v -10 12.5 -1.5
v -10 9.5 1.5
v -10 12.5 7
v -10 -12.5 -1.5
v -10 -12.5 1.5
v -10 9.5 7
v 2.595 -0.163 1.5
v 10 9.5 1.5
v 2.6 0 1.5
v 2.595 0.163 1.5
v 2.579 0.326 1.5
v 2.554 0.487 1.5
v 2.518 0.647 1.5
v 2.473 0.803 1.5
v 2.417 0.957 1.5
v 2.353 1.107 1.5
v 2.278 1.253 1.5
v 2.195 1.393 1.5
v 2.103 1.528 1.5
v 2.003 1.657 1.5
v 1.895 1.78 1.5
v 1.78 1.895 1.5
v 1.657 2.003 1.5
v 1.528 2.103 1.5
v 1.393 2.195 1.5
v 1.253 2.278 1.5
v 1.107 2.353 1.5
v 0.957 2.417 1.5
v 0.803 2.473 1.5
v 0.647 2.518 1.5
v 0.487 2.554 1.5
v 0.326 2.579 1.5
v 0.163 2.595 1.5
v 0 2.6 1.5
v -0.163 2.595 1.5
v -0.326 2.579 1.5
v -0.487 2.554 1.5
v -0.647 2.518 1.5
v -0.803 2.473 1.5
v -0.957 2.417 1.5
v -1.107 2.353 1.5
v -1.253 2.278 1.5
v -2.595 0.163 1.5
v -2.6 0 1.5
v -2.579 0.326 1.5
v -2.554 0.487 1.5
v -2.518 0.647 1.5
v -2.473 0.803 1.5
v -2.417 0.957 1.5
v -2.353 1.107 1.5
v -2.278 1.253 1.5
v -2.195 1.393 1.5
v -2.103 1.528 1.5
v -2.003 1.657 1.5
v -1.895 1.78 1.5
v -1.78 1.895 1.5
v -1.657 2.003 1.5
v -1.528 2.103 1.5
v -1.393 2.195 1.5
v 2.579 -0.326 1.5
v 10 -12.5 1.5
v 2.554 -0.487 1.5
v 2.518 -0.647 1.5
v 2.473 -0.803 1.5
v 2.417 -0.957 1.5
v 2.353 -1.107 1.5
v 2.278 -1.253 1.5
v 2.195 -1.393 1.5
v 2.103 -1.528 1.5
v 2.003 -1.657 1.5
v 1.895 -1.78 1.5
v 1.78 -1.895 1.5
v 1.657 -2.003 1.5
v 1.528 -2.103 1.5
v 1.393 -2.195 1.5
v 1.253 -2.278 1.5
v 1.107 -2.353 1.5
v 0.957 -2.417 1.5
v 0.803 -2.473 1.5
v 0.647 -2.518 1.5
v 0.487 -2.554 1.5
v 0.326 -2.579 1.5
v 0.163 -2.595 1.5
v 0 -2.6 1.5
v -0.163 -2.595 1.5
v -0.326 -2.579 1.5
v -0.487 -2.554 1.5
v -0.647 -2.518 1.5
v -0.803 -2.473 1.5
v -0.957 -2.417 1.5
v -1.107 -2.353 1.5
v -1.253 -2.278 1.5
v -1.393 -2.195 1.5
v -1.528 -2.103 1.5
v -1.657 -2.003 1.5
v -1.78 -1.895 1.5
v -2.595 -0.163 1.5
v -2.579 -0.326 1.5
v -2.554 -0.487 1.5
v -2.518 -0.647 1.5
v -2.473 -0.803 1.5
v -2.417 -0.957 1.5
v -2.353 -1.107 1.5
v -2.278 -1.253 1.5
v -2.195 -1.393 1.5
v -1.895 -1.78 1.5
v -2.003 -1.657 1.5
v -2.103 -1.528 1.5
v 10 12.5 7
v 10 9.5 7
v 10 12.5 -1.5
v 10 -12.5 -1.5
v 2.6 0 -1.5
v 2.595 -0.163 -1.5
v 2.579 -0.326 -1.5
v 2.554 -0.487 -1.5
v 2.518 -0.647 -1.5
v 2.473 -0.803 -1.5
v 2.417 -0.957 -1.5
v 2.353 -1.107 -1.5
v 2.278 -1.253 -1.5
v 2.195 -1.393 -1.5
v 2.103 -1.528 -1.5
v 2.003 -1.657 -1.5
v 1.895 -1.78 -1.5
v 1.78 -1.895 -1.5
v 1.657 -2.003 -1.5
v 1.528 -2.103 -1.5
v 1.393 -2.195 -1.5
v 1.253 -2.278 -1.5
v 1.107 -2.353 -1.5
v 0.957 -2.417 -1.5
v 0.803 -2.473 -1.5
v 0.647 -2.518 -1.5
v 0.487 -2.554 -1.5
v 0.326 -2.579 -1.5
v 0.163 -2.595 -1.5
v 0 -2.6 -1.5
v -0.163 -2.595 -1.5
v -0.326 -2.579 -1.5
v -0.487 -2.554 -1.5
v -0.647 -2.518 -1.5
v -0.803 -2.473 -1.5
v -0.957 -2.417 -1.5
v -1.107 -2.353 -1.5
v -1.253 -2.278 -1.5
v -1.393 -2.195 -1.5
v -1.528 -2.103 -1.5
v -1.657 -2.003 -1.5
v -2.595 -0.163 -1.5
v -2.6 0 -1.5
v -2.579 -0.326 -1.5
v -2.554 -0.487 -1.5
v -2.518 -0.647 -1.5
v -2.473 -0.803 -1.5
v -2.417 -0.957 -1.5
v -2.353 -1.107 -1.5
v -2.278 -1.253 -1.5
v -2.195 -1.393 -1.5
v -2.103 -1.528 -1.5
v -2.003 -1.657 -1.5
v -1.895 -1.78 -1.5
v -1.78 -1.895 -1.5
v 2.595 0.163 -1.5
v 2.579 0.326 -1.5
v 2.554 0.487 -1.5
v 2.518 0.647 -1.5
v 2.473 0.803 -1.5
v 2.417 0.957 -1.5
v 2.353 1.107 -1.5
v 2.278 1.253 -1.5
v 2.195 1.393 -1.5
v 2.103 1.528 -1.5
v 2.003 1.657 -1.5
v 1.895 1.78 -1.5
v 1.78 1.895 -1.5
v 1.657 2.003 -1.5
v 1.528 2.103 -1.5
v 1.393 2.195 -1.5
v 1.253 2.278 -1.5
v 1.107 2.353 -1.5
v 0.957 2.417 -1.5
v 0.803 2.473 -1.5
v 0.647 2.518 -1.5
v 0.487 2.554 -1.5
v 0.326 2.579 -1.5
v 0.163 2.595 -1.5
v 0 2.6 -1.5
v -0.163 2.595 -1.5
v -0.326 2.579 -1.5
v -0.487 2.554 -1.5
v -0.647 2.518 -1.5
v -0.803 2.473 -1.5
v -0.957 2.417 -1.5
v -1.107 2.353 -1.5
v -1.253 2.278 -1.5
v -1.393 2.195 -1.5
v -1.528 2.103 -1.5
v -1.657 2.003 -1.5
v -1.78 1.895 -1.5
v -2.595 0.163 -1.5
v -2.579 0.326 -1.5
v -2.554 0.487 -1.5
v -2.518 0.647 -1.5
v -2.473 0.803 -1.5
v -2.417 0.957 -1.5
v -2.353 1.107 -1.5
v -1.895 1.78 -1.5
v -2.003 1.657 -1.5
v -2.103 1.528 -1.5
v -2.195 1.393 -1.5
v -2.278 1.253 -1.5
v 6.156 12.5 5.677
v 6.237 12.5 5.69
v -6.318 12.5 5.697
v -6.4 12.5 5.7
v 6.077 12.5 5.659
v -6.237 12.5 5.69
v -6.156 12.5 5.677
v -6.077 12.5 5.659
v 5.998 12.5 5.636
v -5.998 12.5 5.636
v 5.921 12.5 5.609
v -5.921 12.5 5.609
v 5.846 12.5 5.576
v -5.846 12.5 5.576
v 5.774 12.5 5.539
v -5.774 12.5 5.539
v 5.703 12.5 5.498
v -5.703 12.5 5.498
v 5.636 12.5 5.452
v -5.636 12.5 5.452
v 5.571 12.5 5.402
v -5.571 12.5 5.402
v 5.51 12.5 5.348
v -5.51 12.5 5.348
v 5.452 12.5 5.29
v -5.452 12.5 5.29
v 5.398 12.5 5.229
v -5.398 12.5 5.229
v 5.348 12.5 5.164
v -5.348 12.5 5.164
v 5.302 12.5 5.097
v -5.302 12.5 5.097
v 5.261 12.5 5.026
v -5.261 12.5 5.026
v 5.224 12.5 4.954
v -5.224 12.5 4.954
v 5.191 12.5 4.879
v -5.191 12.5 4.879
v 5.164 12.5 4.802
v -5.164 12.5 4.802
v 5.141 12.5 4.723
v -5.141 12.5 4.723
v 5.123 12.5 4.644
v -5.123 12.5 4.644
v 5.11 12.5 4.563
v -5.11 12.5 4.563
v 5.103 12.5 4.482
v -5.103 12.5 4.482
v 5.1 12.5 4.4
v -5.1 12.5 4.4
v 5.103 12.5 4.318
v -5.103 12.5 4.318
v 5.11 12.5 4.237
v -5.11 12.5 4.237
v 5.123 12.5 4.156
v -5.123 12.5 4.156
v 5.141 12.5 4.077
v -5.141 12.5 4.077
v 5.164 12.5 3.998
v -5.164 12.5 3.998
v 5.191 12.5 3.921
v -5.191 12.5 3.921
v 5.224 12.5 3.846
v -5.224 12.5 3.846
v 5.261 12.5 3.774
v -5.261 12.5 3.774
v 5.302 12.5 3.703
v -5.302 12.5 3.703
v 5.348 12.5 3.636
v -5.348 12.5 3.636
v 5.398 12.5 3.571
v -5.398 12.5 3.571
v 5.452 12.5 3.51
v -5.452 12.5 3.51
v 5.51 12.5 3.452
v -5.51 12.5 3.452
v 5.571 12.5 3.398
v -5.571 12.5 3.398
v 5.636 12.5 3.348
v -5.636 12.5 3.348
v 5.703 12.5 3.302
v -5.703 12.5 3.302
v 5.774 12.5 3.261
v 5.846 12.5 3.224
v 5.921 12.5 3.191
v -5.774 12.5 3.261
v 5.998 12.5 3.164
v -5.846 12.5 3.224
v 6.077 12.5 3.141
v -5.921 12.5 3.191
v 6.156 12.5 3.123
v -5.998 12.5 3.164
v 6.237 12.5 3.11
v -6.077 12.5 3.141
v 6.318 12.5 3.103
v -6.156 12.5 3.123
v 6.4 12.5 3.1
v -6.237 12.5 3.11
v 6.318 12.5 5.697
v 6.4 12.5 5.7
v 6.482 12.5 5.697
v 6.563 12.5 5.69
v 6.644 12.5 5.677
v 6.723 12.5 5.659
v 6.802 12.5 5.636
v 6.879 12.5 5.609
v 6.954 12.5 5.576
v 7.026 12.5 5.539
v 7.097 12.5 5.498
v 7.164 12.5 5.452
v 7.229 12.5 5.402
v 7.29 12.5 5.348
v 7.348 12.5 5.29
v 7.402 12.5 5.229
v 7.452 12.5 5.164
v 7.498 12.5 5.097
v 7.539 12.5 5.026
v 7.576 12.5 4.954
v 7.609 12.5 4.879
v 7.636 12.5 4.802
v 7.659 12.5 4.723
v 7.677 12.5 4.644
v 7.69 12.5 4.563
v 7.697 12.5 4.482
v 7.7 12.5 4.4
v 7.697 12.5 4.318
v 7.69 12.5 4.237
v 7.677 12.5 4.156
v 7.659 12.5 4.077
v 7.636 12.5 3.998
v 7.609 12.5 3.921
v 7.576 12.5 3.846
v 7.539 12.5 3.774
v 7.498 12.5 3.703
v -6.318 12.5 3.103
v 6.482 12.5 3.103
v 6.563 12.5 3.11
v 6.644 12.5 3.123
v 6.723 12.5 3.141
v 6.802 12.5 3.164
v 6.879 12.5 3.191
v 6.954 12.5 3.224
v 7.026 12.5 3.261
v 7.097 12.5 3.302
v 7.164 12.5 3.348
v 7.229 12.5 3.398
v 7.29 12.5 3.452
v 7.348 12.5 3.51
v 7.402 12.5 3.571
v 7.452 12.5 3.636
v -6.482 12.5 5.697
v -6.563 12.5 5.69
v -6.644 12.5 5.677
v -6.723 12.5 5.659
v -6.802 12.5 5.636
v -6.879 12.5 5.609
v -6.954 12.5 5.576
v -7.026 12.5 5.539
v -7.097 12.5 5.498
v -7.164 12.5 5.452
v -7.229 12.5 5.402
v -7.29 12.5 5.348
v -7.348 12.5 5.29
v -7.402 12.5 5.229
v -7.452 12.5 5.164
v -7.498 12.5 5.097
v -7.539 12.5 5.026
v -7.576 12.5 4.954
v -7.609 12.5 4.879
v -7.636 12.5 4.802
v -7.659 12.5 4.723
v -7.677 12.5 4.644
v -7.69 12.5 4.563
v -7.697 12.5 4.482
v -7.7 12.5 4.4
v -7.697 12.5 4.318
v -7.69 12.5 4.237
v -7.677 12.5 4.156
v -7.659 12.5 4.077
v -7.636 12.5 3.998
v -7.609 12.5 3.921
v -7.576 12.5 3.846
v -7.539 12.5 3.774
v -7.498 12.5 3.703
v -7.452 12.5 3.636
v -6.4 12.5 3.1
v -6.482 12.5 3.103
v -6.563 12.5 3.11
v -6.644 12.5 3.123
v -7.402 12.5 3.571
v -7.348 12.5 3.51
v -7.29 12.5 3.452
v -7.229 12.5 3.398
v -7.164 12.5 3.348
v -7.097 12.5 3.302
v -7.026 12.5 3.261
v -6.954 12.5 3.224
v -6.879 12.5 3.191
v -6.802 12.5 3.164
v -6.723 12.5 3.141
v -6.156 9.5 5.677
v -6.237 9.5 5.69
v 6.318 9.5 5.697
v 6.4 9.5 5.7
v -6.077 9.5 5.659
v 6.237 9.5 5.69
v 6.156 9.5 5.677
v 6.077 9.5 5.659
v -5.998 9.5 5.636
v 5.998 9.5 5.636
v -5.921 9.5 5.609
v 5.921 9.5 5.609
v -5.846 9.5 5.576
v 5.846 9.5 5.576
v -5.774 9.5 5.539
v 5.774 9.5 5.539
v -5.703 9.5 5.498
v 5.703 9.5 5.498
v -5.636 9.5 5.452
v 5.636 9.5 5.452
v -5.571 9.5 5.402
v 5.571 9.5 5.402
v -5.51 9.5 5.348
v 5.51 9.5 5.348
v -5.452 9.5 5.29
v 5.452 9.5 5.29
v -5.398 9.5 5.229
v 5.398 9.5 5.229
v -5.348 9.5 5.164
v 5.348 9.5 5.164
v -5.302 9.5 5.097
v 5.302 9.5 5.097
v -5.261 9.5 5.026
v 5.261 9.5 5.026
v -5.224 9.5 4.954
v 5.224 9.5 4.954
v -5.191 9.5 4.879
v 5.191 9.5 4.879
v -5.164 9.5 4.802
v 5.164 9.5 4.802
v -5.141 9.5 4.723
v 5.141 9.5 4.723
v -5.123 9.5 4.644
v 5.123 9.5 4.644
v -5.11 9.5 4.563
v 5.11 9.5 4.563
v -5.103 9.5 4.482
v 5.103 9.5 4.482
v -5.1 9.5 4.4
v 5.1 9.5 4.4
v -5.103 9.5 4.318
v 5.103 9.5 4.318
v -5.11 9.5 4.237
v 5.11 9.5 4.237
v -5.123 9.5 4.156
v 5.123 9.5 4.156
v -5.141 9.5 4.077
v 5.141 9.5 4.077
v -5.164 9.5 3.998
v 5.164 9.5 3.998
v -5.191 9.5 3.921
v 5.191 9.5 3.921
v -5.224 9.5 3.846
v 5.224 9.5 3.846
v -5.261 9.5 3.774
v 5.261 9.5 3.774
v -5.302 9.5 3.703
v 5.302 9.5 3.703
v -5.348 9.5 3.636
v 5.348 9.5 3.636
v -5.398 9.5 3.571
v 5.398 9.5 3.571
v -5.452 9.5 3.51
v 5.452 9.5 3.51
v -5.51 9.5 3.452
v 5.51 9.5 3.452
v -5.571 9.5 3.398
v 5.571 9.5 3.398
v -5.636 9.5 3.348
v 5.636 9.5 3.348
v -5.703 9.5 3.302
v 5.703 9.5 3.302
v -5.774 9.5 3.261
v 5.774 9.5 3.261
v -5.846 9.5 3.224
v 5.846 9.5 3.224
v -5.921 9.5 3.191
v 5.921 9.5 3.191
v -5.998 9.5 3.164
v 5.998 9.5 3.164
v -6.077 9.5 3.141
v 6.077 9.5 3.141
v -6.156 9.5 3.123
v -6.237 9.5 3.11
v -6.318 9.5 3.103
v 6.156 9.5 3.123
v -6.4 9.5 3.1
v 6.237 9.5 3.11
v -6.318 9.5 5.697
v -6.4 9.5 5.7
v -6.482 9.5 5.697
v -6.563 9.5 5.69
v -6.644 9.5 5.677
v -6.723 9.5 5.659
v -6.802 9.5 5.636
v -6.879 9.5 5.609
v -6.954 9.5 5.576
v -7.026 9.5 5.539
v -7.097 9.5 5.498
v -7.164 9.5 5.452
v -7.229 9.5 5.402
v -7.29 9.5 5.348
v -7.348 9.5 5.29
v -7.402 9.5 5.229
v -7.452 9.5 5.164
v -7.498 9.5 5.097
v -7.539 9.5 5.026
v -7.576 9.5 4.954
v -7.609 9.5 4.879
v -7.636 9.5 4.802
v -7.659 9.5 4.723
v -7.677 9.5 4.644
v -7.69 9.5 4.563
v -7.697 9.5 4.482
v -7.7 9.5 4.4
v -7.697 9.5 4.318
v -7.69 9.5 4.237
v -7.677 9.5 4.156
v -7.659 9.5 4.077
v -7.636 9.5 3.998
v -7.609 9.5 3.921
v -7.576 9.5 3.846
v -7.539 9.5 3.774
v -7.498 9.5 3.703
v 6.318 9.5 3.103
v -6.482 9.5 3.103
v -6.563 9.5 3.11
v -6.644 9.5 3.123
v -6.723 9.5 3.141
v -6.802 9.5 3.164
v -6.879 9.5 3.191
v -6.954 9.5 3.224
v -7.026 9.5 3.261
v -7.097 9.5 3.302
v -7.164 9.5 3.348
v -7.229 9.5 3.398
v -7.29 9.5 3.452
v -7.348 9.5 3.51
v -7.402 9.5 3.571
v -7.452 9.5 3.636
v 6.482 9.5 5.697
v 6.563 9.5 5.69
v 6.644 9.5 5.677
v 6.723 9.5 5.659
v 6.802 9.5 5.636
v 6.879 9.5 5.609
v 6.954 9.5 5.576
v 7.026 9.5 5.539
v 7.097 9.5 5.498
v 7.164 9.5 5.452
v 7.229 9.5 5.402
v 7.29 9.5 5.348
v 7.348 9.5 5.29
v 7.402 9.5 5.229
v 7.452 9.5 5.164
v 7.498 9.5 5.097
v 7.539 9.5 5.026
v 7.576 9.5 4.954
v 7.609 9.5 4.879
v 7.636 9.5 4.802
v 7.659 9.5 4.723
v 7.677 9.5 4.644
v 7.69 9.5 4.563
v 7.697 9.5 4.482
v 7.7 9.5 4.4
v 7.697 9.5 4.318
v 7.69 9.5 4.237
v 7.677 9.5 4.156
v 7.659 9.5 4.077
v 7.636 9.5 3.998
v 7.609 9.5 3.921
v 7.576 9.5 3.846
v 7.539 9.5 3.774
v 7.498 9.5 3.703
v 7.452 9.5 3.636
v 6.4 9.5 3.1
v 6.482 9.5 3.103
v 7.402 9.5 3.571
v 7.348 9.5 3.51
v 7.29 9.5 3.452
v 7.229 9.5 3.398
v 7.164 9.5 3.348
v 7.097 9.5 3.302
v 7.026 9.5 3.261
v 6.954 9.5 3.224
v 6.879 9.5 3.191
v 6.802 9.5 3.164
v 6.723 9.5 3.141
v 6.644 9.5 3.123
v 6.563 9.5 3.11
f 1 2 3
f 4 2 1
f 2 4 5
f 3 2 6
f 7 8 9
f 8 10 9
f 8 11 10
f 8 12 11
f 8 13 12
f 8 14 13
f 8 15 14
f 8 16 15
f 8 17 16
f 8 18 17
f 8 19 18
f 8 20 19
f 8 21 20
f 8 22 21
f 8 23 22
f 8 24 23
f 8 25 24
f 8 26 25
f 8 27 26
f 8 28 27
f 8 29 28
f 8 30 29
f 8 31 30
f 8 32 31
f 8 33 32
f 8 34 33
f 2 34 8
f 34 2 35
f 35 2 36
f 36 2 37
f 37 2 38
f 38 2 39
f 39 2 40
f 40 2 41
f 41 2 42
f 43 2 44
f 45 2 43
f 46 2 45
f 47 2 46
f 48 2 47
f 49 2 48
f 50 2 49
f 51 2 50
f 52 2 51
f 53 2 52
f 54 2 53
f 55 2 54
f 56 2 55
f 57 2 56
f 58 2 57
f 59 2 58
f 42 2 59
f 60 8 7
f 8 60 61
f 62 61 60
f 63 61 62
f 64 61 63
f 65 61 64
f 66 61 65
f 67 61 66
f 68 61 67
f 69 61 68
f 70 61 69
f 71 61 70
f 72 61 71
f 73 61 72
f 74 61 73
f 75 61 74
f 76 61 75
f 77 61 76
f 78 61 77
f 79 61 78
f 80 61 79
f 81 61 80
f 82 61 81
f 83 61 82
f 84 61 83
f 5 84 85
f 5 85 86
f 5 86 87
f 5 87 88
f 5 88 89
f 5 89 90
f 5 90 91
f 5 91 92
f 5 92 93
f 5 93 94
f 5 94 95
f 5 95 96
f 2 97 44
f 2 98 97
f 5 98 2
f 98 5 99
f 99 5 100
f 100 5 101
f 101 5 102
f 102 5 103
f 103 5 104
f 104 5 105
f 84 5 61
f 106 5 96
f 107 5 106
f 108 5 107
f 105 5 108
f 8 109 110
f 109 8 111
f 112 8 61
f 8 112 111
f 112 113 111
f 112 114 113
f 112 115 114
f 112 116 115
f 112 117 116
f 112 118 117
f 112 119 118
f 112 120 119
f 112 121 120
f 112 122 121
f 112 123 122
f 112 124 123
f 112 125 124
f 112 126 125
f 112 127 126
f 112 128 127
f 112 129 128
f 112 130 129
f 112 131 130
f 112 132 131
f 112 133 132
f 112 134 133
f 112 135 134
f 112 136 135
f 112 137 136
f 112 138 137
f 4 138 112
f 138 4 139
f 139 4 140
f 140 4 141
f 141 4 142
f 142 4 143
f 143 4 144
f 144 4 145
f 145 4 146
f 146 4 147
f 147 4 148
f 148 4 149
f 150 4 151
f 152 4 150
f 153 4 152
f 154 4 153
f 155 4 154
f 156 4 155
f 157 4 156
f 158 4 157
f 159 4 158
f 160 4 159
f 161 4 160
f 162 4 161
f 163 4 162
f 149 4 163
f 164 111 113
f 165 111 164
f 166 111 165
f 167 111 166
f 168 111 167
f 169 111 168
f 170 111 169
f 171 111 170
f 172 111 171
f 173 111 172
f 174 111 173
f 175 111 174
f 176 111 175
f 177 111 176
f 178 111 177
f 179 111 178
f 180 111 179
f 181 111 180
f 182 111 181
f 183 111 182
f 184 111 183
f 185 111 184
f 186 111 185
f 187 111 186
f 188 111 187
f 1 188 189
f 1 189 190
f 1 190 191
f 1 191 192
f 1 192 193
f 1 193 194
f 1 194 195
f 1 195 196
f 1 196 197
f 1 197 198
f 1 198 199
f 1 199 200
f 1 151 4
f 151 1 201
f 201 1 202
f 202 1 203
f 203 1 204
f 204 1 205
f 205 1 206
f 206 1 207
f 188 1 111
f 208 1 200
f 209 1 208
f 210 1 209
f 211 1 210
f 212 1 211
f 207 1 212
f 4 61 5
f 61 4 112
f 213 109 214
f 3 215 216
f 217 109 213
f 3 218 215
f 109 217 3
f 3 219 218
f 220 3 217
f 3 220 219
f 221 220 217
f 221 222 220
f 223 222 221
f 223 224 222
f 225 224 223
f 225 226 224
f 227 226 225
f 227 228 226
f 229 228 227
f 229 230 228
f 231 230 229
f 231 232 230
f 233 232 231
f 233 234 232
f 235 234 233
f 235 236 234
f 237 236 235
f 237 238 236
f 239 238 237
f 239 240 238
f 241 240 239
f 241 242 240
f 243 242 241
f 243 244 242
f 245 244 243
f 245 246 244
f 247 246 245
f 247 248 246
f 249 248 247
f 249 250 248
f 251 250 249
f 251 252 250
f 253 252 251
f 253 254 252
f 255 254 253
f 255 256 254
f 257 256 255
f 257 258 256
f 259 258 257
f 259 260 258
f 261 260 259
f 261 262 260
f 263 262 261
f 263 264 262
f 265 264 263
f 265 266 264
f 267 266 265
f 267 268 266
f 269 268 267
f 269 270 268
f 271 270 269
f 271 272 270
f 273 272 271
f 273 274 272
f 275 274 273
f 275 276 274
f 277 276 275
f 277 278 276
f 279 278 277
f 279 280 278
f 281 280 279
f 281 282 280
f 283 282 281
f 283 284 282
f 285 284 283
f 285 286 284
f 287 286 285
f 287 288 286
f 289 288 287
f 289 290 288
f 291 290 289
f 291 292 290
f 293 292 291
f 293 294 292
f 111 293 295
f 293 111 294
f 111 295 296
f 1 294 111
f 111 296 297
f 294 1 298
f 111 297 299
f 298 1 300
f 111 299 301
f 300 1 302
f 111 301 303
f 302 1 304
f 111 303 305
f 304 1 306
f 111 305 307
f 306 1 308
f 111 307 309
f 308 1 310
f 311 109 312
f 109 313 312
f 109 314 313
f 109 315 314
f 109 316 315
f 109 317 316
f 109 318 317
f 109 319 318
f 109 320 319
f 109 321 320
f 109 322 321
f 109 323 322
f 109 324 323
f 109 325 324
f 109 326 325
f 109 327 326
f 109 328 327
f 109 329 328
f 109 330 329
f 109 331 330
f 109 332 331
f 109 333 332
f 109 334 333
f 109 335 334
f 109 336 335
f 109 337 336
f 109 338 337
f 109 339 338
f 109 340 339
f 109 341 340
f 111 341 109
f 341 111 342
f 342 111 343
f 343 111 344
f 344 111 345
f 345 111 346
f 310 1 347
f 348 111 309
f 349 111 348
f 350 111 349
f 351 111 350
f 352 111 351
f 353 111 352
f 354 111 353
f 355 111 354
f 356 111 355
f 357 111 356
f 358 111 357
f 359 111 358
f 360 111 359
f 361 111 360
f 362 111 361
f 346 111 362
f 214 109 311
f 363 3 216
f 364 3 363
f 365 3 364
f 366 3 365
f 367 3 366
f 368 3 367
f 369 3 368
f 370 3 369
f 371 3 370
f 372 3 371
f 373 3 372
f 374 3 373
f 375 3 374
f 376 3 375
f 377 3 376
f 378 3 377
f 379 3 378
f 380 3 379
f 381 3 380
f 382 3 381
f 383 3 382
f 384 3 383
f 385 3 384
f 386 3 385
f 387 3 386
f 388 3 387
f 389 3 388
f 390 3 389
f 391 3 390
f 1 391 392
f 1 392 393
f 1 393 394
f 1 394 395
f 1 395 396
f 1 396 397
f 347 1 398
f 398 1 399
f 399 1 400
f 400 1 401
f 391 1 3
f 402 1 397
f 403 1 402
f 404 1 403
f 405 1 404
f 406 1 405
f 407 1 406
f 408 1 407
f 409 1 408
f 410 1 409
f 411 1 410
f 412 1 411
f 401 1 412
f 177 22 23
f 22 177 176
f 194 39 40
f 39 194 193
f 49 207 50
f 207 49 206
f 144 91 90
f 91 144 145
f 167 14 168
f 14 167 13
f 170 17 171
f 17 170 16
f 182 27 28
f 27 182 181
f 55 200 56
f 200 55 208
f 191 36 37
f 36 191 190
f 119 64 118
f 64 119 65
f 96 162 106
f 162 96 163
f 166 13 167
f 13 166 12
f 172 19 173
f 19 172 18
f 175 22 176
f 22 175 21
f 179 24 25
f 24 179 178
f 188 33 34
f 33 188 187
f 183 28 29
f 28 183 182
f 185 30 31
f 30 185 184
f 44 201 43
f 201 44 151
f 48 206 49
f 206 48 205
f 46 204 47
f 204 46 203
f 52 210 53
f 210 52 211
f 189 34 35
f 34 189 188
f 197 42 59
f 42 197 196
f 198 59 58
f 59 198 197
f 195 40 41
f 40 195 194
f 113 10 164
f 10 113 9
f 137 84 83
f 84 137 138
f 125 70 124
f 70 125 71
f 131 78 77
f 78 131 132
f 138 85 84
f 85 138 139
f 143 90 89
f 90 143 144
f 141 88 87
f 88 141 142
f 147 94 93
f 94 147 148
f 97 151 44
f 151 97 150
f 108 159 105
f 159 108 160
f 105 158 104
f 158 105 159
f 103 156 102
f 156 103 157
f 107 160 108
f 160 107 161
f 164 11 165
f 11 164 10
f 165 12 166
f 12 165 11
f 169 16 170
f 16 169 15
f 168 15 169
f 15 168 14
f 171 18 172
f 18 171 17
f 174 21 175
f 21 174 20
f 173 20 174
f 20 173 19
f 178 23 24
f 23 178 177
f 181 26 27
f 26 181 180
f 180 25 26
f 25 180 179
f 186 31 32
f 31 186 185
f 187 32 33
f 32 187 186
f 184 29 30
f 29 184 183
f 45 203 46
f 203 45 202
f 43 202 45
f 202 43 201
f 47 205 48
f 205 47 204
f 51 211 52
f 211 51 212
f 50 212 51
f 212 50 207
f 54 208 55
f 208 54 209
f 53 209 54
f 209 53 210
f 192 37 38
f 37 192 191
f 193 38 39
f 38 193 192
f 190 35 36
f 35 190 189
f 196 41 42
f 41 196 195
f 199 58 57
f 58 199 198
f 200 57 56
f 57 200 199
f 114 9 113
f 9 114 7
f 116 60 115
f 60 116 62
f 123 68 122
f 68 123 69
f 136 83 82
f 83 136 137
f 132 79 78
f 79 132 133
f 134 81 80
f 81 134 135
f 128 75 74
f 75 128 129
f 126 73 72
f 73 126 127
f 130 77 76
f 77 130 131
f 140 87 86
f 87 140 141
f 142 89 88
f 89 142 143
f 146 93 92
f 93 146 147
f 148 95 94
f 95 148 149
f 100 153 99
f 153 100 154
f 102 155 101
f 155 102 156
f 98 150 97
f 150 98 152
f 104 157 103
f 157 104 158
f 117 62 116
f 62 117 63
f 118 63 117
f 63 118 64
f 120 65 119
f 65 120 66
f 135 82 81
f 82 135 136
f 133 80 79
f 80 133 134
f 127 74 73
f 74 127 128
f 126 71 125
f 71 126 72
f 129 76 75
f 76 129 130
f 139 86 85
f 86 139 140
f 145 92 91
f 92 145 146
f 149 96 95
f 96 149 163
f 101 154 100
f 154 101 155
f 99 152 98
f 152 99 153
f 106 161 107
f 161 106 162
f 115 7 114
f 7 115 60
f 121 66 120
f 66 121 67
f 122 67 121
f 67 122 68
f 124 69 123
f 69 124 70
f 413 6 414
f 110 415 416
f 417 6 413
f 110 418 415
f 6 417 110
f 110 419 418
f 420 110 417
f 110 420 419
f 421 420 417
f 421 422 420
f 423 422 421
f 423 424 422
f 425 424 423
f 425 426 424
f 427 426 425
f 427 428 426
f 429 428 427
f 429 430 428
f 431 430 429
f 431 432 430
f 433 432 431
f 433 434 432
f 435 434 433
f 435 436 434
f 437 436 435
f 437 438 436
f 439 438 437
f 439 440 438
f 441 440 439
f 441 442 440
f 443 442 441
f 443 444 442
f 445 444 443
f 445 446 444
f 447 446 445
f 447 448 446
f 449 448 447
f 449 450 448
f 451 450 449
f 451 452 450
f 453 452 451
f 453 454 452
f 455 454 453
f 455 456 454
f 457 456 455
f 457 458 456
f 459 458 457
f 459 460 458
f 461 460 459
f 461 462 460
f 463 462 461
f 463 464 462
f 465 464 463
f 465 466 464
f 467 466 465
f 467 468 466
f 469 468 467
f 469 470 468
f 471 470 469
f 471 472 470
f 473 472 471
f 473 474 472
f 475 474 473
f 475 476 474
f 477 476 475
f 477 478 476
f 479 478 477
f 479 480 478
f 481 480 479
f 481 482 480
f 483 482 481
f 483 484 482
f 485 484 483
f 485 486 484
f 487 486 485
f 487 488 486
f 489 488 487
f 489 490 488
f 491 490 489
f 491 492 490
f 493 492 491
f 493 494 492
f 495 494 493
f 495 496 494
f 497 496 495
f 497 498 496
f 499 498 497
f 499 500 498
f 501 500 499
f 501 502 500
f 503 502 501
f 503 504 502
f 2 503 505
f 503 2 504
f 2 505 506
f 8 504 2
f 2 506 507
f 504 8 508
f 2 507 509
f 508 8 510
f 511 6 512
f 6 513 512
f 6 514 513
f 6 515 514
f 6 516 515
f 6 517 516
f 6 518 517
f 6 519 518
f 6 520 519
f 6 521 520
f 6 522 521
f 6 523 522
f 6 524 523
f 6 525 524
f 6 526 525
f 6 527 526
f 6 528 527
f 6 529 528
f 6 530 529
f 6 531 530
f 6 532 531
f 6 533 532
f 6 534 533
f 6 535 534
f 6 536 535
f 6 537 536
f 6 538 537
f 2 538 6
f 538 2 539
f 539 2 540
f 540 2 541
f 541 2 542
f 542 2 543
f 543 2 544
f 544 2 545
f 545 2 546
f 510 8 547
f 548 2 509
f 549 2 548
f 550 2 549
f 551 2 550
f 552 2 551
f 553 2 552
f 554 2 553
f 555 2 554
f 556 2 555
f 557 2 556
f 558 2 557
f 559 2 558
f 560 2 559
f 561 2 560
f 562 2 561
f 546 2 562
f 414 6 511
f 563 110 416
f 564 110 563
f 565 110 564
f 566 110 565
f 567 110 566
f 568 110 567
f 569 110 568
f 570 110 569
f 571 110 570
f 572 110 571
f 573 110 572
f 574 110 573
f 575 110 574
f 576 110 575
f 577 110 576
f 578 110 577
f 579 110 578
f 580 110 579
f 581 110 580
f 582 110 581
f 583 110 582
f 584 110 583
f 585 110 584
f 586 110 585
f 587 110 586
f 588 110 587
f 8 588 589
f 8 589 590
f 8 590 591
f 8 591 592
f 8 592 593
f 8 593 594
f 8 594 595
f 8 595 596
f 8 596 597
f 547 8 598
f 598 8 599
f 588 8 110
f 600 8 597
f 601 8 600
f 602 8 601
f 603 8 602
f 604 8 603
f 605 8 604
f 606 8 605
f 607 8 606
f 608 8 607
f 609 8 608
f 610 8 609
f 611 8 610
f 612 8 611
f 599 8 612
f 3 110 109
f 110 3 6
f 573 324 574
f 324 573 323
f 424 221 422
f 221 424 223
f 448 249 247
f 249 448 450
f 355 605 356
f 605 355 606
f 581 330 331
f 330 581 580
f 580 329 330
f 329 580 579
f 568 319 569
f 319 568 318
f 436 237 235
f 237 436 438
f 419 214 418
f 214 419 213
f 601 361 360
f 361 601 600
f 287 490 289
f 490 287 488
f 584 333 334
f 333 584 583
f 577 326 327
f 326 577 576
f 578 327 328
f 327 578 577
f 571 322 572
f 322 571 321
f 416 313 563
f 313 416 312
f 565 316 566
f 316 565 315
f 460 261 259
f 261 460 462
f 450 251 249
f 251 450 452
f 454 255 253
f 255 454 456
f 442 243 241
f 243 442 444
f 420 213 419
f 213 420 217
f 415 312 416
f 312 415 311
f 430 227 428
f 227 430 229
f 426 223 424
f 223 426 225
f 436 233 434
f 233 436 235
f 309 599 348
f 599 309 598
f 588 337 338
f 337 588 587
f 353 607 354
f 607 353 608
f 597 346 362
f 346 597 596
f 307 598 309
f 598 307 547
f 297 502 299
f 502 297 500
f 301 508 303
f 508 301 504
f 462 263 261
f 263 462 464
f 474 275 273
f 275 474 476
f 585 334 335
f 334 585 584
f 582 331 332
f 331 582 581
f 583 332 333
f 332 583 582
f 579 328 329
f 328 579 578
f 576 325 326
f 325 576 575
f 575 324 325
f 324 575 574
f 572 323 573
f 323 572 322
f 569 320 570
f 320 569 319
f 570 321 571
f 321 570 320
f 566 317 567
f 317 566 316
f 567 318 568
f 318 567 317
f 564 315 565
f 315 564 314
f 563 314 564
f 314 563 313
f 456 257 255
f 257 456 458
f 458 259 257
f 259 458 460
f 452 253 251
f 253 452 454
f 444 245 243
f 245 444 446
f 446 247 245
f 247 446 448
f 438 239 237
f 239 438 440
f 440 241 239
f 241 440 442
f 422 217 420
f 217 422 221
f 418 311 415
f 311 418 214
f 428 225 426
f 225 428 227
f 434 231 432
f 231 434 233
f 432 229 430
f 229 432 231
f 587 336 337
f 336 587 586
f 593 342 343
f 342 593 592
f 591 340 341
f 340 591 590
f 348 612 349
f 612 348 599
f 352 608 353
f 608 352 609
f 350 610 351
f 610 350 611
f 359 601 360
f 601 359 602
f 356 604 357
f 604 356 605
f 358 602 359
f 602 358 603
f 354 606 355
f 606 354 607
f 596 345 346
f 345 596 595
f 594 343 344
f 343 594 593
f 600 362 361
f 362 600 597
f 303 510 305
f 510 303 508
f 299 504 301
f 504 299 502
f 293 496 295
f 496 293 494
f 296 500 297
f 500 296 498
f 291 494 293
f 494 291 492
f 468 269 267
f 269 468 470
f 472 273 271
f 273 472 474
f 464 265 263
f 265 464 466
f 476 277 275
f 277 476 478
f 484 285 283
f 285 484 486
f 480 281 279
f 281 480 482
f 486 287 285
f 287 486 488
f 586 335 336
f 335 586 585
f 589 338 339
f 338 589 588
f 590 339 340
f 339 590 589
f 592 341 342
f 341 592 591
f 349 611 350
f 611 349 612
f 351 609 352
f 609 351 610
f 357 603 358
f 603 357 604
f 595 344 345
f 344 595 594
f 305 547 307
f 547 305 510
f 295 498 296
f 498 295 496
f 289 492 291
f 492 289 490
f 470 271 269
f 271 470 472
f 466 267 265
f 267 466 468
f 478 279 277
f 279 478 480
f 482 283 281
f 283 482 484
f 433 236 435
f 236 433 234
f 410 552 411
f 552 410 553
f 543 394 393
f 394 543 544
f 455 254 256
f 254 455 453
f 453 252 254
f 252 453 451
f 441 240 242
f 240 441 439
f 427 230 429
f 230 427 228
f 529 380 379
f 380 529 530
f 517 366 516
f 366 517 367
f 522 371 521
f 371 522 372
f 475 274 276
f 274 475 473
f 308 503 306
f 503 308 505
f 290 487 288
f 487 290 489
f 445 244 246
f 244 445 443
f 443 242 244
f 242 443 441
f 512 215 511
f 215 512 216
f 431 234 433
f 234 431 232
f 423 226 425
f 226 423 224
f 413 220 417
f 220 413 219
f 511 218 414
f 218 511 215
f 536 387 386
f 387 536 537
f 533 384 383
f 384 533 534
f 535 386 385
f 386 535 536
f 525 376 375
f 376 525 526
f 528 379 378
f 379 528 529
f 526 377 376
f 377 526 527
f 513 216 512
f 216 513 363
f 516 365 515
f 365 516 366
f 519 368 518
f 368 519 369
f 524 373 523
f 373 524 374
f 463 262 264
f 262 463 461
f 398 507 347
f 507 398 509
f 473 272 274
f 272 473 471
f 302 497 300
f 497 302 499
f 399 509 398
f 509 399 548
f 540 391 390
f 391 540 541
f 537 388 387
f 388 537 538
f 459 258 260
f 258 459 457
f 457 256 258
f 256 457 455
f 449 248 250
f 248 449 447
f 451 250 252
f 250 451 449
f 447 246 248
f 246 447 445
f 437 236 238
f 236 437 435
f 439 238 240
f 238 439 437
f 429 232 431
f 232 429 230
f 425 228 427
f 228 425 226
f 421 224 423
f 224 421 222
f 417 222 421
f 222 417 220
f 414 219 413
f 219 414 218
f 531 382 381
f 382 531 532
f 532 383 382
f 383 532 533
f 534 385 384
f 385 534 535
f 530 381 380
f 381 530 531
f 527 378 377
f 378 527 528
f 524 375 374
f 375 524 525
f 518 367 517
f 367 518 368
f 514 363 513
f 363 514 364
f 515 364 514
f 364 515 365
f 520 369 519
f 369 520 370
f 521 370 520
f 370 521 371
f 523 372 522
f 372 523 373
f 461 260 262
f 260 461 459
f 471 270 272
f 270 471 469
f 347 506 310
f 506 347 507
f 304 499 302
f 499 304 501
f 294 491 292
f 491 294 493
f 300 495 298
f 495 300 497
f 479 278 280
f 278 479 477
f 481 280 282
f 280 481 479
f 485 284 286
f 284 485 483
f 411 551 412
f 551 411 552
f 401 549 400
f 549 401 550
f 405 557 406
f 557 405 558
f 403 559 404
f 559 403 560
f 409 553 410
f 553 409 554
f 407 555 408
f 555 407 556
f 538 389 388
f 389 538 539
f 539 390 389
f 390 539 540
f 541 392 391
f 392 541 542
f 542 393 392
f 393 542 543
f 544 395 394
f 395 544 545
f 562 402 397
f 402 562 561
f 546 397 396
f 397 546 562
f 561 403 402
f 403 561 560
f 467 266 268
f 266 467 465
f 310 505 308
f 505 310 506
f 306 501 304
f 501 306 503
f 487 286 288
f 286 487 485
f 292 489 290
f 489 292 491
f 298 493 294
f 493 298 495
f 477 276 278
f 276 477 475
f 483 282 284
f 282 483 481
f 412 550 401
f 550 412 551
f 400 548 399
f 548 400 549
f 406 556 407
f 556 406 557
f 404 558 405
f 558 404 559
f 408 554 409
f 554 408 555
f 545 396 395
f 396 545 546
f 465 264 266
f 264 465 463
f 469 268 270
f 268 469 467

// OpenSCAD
$fn=100;
r3=1.3;
shift=2.6;
qt_w=18;
module bracket() {
difference(){
    cube([20,25,3],center=true);
    translate([0,0,-5])
    cylinder(100,2.6,2.6);
}
}
module qt(){
difference(){
    cube([20,6,3],center=true);
    
    translate([qt_w/2-shift,3-shift,-2])
    cylinder(10,1.3,1.3);
    translate([-qt_w/2+shift,3-shift,-2])
    cylinder(10,1.3,1.3);
}}


bracket();
translate([0,11,4])
rotate([90,0,0])
qt();
